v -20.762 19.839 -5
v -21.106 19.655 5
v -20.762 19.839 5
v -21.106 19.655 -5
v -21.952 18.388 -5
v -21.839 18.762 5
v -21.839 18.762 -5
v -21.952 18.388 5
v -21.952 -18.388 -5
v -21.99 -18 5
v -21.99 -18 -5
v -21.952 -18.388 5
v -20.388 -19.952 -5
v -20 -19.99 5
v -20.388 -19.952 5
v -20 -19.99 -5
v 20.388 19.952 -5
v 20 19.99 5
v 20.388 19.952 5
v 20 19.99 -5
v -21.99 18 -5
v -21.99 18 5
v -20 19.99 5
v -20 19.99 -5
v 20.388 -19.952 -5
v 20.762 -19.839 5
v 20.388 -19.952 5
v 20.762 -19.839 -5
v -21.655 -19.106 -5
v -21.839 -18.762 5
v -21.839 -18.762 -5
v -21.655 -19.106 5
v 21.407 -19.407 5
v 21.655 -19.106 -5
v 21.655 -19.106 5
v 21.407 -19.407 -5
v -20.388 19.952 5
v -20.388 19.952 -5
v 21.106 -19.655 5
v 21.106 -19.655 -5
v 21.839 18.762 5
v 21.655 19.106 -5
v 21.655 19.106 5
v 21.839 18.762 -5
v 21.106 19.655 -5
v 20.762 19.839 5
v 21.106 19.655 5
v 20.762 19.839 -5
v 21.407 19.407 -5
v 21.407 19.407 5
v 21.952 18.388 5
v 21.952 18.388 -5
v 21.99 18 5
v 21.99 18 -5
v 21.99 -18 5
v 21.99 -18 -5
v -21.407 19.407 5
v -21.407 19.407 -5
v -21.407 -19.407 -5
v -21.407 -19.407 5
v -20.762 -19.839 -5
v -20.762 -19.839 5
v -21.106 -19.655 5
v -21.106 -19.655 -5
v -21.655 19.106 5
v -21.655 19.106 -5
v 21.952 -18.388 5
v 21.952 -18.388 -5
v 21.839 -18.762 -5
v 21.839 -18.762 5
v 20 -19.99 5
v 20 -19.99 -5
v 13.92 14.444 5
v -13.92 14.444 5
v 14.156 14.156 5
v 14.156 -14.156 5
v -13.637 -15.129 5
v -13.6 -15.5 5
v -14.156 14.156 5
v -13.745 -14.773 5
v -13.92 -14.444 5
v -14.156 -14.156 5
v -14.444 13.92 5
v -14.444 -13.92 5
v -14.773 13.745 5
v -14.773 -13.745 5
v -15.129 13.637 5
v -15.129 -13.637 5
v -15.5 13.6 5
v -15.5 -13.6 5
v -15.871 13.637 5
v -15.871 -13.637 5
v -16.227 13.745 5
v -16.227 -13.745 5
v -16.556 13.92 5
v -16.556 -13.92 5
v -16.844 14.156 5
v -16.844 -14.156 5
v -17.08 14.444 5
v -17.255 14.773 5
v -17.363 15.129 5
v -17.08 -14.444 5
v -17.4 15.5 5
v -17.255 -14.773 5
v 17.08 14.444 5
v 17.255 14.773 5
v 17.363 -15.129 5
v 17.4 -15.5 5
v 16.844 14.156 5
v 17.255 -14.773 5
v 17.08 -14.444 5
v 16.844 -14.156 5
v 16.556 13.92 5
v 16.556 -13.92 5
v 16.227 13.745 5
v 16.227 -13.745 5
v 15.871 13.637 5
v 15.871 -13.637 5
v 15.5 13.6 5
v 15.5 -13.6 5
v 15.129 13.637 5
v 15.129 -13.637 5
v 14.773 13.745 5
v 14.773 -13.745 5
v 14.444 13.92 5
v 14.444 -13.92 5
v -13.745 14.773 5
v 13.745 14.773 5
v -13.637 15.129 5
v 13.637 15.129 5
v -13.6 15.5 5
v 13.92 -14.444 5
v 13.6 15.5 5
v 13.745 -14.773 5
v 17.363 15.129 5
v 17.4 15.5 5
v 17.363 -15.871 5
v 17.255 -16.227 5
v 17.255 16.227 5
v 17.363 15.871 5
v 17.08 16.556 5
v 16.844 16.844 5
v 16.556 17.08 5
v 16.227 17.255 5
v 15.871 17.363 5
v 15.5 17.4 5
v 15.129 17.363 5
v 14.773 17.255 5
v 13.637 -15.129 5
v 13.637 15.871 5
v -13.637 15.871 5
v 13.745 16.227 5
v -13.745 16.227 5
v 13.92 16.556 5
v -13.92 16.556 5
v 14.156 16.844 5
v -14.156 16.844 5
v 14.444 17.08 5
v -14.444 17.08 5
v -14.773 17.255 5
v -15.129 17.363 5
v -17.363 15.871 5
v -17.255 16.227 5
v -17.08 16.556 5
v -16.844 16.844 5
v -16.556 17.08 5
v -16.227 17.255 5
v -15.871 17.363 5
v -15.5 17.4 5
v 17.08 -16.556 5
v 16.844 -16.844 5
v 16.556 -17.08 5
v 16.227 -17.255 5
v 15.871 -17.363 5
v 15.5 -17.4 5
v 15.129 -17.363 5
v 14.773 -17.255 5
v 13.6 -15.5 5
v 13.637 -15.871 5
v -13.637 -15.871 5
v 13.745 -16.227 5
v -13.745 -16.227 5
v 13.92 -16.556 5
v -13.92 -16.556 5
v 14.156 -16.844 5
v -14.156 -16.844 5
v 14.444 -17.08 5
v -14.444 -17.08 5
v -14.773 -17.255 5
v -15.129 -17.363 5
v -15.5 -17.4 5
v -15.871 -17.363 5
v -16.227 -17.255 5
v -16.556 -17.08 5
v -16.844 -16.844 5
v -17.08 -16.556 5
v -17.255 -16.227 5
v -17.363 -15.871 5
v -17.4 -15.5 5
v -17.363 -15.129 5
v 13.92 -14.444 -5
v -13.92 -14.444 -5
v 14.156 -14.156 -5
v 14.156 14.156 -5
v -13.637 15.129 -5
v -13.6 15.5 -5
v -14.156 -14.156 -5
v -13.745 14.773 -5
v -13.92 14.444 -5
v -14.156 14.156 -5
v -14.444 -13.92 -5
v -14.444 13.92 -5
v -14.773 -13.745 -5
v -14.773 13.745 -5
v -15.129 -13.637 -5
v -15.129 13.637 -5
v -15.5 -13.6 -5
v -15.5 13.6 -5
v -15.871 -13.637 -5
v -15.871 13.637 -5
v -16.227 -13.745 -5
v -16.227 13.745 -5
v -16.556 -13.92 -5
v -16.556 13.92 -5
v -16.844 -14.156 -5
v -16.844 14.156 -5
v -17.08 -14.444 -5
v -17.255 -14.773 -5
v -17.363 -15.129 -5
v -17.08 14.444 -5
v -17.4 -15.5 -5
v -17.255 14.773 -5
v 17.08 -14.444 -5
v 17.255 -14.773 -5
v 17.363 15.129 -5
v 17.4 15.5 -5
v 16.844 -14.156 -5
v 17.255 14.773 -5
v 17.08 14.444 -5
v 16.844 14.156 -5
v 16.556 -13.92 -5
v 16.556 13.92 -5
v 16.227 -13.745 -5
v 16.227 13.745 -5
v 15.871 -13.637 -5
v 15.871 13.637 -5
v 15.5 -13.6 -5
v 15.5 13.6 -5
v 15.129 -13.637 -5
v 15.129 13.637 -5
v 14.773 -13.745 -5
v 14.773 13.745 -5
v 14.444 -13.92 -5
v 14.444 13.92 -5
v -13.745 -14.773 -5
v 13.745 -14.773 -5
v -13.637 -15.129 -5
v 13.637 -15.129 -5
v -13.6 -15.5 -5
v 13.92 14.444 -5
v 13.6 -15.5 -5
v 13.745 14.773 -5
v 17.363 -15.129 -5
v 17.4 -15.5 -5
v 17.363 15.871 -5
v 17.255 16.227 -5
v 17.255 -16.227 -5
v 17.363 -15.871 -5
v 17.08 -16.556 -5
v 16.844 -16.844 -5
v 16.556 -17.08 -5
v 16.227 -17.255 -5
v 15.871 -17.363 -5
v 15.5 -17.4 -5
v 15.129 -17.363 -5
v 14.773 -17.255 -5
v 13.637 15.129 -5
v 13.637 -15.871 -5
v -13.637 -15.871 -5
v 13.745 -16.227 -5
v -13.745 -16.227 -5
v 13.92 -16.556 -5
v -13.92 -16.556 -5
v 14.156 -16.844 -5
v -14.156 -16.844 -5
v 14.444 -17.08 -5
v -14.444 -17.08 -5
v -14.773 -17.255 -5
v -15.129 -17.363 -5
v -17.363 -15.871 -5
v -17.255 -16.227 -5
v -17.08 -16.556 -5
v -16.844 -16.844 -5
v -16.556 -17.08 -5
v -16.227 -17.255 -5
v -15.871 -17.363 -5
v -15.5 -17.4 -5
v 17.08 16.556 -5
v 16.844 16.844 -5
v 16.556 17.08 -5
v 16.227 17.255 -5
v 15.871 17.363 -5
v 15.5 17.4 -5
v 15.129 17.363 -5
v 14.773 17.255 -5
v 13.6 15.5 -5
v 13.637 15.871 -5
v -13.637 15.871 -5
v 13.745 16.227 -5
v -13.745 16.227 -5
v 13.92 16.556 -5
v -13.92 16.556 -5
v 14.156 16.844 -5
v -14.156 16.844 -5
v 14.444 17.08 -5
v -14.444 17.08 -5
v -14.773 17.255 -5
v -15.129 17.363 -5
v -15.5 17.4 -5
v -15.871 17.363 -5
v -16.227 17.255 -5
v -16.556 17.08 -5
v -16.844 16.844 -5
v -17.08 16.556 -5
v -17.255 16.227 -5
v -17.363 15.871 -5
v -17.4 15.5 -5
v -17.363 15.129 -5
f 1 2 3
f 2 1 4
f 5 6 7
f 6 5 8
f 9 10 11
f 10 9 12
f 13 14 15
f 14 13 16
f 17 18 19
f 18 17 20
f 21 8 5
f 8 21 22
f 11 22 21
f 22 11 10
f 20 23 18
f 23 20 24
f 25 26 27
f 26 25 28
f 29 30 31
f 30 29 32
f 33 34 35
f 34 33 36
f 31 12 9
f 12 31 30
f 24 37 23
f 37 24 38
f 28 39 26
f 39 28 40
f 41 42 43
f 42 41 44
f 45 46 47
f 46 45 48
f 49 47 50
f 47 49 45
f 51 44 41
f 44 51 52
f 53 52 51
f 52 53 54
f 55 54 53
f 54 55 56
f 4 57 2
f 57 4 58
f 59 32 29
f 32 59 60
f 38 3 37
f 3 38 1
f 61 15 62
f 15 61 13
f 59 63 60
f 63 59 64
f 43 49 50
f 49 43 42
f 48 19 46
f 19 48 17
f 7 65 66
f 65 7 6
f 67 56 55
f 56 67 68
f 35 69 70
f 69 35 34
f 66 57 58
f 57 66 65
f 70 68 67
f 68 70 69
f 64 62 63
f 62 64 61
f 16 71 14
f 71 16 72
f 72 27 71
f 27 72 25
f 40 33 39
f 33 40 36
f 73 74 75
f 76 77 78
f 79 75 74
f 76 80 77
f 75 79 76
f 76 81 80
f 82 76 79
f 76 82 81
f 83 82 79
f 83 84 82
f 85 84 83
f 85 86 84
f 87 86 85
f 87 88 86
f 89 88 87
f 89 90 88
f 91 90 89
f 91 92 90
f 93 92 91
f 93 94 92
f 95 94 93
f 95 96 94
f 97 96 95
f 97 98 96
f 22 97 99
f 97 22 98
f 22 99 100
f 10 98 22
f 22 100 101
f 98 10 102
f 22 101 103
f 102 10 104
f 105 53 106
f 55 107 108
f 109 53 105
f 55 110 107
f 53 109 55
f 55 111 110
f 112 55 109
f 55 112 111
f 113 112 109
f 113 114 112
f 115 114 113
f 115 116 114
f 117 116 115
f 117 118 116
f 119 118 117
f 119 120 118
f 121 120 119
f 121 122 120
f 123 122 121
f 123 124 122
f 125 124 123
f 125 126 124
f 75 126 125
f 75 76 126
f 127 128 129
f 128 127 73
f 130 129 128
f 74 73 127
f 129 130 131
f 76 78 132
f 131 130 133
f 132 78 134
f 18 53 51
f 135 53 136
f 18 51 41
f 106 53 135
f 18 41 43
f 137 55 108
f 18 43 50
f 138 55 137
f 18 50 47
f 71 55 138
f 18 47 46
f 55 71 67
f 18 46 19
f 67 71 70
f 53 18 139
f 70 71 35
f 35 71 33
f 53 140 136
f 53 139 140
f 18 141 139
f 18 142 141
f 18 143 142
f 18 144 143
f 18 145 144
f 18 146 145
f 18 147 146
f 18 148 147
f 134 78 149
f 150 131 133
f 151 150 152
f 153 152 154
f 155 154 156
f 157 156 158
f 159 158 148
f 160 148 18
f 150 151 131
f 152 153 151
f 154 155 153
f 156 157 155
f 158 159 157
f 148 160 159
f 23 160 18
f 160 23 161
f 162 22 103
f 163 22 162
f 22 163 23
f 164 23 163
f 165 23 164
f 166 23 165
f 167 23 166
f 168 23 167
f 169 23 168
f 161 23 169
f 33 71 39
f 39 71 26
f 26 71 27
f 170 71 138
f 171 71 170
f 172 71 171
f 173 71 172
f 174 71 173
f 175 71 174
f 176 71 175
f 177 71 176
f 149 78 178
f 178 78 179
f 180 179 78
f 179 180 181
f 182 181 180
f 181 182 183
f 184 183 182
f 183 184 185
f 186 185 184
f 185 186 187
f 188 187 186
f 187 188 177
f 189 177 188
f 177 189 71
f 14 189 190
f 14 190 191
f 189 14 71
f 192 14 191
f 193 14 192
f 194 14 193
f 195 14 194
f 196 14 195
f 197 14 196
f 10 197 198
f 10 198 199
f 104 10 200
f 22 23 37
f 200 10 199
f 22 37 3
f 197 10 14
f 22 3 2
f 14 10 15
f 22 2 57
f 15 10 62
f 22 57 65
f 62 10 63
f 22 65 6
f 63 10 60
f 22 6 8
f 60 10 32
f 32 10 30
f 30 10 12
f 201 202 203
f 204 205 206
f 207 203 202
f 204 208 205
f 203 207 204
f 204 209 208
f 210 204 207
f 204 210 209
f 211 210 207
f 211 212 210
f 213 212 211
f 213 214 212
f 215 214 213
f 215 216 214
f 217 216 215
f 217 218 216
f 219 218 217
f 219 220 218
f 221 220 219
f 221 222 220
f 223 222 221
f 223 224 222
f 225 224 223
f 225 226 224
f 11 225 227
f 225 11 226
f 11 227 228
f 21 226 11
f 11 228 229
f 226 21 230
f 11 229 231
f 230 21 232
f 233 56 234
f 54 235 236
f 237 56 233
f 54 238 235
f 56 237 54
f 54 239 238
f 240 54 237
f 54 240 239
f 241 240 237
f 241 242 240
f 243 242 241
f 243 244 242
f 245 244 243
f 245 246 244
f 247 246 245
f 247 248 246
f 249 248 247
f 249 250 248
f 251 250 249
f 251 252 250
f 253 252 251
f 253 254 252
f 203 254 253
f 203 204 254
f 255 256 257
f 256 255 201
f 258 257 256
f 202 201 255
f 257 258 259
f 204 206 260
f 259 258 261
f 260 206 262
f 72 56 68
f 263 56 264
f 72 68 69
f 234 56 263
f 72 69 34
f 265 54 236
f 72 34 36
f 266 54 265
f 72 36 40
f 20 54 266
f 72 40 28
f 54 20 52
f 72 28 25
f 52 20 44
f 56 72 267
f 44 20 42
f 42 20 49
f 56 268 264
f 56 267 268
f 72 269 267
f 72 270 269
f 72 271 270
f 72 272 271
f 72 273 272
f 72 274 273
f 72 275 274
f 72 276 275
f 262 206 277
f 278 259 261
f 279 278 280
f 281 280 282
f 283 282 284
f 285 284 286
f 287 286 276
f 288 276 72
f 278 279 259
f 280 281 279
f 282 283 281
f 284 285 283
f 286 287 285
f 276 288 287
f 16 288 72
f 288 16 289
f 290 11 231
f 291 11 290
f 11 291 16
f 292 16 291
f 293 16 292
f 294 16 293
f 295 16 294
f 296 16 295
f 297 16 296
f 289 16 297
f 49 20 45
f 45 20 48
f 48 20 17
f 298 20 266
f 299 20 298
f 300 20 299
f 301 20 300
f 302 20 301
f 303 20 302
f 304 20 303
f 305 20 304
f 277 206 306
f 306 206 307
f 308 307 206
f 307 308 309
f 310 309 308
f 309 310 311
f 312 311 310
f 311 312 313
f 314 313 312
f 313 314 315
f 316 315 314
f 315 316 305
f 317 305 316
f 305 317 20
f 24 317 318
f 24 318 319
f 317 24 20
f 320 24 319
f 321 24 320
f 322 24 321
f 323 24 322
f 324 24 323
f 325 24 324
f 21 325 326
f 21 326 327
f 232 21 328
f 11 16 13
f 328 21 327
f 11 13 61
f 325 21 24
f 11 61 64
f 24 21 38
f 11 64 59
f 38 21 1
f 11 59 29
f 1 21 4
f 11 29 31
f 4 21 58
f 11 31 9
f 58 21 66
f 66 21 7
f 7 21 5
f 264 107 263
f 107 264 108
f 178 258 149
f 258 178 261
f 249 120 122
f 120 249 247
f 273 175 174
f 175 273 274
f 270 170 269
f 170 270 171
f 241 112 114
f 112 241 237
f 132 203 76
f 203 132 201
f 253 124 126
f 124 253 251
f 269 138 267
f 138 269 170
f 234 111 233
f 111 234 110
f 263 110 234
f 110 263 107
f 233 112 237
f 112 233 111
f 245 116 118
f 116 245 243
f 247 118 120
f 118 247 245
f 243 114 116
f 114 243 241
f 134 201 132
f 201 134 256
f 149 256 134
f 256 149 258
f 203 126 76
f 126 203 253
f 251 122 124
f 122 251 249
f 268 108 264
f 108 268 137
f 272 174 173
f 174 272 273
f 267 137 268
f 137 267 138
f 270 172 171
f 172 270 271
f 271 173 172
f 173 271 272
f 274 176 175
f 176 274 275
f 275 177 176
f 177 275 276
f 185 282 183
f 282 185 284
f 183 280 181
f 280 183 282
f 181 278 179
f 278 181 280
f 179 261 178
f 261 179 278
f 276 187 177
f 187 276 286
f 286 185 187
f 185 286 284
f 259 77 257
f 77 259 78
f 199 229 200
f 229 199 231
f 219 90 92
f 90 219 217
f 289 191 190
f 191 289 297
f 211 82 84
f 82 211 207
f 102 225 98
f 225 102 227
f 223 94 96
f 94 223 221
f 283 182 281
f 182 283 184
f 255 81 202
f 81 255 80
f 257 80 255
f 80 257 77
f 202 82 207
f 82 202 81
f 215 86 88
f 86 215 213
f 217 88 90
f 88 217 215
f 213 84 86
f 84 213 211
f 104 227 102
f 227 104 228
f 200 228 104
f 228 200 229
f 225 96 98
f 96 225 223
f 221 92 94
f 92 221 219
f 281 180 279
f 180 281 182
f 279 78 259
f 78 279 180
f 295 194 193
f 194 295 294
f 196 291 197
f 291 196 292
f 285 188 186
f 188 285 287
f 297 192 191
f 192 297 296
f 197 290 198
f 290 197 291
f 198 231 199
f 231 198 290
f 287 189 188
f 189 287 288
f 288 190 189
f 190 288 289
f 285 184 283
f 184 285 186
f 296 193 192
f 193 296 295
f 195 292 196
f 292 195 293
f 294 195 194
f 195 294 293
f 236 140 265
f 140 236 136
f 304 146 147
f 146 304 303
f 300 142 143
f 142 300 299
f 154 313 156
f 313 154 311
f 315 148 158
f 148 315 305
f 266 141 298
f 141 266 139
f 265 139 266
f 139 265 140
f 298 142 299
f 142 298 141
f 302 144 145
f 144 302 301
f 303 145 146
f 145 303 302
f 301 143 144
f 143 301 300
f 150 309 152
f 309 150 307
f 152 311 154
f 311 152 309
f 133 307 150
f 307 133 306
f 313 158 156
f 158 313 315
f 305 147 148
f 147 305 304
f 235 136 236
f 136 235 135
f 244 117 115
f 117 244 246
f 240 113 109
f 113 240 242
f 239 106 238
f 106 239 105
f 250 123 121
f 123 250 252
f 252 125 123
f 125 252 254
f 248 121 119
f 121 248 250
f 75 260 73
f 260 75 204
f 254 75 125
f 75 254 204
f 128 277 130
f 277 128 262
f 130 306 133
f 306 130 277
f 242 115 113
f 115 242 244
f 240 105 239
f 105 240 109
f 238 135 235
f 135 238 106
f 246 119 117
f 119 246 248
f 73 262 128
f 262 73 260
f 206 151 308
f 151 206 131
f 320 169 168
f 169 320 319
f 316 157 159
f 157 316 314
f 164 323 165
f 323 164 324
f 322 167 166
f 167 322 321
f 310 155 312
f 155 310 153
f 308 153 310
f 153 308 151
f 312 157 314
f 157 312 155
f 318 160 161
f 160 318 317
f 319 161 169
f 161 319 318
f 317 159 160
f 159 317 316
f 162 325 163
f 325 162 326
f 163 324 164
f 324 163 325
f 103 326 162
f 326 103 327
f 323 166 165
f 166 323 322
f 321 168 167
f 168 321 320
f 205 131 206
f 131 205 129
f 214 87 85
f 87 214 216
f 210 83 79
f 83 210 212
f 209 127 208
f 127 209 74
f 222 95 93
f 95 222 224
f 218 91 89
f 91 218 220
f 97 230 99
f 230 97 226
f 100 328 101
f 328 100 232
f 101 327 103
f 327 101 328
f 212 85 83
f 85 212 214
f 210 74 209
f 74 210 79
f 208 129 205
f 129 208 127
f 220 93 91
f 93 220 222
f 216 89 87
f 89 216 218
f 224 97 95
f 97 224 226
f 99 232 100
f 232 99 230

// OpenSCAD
/* ==================================================
  Configuration
================================================== */

hole_distance_horizontal = 31;
hole_distance_vertical   = 31;
hole_diameter            = 3.8;
plate_thickness          = 10;
plate_width              = 44;
plate_height             = 40;
edge_radius              = 2;

/* ==================================================
  Code
================================================== */

complete_assembly();

/* ==================================================
  Modules
================================================== */

/*
 * Complete assembly
 * 
 * Includes everything needed to 
 *
 */
module complete_assembly () {
  difference() {
    plate();

    translate(
      [
        hole_distance_horizontal * 0.5,
        -hole_distance_vertical * 0.5,
        0
      ]
    )
    screw();
    translate(
      [
        -hole_distance_horizontal * 0.5,
         -hole_distance_vertical * 0.5,
         0
      ]
    )
    screw();

    translate(
      [
        hole_distance_horizontal * 0.5,
        hole_distance_vertical * 0.5,
        0
      ]
    )
    screw();
    translate(
      [
        -hole_distance_horizontal * 0.5,
         hole_distance_vertical * 0.5,
         0
      ]
    )
    screw();
  }
}

/*
 *
 * Baseplate
 *
 * Baseplate without holes
 *
 */
module plate() {
  
  difference() {

    minkowski() {
      cube(
        [
          plate_width - edge_radius * 2,
          plate_height - edge_radius * 2,
          plate_thickness
        ],
        center = true
      );
      sphere(
        r = edge_radius,
        $fn = 32
      );
    }
    
    // cut 
    translate([0,0, plate_thickness])
    cube(
      [
        plate_width * 2,
        plate_height * 2,
        plate_thickness
      ],
      center = true
    );
    
    translate([0,0, -plate_thickness])
    cube(
      [
        plate_width * 2,
        plate_height * 2,
        plate_thickness
      ],
      center = true
    );
  
  }
}

module screw() {
  cylinder(
    h = plate_thickness * 2,
    d = hole_diameter,
    center = true,
    $fn = 32
  );
}
